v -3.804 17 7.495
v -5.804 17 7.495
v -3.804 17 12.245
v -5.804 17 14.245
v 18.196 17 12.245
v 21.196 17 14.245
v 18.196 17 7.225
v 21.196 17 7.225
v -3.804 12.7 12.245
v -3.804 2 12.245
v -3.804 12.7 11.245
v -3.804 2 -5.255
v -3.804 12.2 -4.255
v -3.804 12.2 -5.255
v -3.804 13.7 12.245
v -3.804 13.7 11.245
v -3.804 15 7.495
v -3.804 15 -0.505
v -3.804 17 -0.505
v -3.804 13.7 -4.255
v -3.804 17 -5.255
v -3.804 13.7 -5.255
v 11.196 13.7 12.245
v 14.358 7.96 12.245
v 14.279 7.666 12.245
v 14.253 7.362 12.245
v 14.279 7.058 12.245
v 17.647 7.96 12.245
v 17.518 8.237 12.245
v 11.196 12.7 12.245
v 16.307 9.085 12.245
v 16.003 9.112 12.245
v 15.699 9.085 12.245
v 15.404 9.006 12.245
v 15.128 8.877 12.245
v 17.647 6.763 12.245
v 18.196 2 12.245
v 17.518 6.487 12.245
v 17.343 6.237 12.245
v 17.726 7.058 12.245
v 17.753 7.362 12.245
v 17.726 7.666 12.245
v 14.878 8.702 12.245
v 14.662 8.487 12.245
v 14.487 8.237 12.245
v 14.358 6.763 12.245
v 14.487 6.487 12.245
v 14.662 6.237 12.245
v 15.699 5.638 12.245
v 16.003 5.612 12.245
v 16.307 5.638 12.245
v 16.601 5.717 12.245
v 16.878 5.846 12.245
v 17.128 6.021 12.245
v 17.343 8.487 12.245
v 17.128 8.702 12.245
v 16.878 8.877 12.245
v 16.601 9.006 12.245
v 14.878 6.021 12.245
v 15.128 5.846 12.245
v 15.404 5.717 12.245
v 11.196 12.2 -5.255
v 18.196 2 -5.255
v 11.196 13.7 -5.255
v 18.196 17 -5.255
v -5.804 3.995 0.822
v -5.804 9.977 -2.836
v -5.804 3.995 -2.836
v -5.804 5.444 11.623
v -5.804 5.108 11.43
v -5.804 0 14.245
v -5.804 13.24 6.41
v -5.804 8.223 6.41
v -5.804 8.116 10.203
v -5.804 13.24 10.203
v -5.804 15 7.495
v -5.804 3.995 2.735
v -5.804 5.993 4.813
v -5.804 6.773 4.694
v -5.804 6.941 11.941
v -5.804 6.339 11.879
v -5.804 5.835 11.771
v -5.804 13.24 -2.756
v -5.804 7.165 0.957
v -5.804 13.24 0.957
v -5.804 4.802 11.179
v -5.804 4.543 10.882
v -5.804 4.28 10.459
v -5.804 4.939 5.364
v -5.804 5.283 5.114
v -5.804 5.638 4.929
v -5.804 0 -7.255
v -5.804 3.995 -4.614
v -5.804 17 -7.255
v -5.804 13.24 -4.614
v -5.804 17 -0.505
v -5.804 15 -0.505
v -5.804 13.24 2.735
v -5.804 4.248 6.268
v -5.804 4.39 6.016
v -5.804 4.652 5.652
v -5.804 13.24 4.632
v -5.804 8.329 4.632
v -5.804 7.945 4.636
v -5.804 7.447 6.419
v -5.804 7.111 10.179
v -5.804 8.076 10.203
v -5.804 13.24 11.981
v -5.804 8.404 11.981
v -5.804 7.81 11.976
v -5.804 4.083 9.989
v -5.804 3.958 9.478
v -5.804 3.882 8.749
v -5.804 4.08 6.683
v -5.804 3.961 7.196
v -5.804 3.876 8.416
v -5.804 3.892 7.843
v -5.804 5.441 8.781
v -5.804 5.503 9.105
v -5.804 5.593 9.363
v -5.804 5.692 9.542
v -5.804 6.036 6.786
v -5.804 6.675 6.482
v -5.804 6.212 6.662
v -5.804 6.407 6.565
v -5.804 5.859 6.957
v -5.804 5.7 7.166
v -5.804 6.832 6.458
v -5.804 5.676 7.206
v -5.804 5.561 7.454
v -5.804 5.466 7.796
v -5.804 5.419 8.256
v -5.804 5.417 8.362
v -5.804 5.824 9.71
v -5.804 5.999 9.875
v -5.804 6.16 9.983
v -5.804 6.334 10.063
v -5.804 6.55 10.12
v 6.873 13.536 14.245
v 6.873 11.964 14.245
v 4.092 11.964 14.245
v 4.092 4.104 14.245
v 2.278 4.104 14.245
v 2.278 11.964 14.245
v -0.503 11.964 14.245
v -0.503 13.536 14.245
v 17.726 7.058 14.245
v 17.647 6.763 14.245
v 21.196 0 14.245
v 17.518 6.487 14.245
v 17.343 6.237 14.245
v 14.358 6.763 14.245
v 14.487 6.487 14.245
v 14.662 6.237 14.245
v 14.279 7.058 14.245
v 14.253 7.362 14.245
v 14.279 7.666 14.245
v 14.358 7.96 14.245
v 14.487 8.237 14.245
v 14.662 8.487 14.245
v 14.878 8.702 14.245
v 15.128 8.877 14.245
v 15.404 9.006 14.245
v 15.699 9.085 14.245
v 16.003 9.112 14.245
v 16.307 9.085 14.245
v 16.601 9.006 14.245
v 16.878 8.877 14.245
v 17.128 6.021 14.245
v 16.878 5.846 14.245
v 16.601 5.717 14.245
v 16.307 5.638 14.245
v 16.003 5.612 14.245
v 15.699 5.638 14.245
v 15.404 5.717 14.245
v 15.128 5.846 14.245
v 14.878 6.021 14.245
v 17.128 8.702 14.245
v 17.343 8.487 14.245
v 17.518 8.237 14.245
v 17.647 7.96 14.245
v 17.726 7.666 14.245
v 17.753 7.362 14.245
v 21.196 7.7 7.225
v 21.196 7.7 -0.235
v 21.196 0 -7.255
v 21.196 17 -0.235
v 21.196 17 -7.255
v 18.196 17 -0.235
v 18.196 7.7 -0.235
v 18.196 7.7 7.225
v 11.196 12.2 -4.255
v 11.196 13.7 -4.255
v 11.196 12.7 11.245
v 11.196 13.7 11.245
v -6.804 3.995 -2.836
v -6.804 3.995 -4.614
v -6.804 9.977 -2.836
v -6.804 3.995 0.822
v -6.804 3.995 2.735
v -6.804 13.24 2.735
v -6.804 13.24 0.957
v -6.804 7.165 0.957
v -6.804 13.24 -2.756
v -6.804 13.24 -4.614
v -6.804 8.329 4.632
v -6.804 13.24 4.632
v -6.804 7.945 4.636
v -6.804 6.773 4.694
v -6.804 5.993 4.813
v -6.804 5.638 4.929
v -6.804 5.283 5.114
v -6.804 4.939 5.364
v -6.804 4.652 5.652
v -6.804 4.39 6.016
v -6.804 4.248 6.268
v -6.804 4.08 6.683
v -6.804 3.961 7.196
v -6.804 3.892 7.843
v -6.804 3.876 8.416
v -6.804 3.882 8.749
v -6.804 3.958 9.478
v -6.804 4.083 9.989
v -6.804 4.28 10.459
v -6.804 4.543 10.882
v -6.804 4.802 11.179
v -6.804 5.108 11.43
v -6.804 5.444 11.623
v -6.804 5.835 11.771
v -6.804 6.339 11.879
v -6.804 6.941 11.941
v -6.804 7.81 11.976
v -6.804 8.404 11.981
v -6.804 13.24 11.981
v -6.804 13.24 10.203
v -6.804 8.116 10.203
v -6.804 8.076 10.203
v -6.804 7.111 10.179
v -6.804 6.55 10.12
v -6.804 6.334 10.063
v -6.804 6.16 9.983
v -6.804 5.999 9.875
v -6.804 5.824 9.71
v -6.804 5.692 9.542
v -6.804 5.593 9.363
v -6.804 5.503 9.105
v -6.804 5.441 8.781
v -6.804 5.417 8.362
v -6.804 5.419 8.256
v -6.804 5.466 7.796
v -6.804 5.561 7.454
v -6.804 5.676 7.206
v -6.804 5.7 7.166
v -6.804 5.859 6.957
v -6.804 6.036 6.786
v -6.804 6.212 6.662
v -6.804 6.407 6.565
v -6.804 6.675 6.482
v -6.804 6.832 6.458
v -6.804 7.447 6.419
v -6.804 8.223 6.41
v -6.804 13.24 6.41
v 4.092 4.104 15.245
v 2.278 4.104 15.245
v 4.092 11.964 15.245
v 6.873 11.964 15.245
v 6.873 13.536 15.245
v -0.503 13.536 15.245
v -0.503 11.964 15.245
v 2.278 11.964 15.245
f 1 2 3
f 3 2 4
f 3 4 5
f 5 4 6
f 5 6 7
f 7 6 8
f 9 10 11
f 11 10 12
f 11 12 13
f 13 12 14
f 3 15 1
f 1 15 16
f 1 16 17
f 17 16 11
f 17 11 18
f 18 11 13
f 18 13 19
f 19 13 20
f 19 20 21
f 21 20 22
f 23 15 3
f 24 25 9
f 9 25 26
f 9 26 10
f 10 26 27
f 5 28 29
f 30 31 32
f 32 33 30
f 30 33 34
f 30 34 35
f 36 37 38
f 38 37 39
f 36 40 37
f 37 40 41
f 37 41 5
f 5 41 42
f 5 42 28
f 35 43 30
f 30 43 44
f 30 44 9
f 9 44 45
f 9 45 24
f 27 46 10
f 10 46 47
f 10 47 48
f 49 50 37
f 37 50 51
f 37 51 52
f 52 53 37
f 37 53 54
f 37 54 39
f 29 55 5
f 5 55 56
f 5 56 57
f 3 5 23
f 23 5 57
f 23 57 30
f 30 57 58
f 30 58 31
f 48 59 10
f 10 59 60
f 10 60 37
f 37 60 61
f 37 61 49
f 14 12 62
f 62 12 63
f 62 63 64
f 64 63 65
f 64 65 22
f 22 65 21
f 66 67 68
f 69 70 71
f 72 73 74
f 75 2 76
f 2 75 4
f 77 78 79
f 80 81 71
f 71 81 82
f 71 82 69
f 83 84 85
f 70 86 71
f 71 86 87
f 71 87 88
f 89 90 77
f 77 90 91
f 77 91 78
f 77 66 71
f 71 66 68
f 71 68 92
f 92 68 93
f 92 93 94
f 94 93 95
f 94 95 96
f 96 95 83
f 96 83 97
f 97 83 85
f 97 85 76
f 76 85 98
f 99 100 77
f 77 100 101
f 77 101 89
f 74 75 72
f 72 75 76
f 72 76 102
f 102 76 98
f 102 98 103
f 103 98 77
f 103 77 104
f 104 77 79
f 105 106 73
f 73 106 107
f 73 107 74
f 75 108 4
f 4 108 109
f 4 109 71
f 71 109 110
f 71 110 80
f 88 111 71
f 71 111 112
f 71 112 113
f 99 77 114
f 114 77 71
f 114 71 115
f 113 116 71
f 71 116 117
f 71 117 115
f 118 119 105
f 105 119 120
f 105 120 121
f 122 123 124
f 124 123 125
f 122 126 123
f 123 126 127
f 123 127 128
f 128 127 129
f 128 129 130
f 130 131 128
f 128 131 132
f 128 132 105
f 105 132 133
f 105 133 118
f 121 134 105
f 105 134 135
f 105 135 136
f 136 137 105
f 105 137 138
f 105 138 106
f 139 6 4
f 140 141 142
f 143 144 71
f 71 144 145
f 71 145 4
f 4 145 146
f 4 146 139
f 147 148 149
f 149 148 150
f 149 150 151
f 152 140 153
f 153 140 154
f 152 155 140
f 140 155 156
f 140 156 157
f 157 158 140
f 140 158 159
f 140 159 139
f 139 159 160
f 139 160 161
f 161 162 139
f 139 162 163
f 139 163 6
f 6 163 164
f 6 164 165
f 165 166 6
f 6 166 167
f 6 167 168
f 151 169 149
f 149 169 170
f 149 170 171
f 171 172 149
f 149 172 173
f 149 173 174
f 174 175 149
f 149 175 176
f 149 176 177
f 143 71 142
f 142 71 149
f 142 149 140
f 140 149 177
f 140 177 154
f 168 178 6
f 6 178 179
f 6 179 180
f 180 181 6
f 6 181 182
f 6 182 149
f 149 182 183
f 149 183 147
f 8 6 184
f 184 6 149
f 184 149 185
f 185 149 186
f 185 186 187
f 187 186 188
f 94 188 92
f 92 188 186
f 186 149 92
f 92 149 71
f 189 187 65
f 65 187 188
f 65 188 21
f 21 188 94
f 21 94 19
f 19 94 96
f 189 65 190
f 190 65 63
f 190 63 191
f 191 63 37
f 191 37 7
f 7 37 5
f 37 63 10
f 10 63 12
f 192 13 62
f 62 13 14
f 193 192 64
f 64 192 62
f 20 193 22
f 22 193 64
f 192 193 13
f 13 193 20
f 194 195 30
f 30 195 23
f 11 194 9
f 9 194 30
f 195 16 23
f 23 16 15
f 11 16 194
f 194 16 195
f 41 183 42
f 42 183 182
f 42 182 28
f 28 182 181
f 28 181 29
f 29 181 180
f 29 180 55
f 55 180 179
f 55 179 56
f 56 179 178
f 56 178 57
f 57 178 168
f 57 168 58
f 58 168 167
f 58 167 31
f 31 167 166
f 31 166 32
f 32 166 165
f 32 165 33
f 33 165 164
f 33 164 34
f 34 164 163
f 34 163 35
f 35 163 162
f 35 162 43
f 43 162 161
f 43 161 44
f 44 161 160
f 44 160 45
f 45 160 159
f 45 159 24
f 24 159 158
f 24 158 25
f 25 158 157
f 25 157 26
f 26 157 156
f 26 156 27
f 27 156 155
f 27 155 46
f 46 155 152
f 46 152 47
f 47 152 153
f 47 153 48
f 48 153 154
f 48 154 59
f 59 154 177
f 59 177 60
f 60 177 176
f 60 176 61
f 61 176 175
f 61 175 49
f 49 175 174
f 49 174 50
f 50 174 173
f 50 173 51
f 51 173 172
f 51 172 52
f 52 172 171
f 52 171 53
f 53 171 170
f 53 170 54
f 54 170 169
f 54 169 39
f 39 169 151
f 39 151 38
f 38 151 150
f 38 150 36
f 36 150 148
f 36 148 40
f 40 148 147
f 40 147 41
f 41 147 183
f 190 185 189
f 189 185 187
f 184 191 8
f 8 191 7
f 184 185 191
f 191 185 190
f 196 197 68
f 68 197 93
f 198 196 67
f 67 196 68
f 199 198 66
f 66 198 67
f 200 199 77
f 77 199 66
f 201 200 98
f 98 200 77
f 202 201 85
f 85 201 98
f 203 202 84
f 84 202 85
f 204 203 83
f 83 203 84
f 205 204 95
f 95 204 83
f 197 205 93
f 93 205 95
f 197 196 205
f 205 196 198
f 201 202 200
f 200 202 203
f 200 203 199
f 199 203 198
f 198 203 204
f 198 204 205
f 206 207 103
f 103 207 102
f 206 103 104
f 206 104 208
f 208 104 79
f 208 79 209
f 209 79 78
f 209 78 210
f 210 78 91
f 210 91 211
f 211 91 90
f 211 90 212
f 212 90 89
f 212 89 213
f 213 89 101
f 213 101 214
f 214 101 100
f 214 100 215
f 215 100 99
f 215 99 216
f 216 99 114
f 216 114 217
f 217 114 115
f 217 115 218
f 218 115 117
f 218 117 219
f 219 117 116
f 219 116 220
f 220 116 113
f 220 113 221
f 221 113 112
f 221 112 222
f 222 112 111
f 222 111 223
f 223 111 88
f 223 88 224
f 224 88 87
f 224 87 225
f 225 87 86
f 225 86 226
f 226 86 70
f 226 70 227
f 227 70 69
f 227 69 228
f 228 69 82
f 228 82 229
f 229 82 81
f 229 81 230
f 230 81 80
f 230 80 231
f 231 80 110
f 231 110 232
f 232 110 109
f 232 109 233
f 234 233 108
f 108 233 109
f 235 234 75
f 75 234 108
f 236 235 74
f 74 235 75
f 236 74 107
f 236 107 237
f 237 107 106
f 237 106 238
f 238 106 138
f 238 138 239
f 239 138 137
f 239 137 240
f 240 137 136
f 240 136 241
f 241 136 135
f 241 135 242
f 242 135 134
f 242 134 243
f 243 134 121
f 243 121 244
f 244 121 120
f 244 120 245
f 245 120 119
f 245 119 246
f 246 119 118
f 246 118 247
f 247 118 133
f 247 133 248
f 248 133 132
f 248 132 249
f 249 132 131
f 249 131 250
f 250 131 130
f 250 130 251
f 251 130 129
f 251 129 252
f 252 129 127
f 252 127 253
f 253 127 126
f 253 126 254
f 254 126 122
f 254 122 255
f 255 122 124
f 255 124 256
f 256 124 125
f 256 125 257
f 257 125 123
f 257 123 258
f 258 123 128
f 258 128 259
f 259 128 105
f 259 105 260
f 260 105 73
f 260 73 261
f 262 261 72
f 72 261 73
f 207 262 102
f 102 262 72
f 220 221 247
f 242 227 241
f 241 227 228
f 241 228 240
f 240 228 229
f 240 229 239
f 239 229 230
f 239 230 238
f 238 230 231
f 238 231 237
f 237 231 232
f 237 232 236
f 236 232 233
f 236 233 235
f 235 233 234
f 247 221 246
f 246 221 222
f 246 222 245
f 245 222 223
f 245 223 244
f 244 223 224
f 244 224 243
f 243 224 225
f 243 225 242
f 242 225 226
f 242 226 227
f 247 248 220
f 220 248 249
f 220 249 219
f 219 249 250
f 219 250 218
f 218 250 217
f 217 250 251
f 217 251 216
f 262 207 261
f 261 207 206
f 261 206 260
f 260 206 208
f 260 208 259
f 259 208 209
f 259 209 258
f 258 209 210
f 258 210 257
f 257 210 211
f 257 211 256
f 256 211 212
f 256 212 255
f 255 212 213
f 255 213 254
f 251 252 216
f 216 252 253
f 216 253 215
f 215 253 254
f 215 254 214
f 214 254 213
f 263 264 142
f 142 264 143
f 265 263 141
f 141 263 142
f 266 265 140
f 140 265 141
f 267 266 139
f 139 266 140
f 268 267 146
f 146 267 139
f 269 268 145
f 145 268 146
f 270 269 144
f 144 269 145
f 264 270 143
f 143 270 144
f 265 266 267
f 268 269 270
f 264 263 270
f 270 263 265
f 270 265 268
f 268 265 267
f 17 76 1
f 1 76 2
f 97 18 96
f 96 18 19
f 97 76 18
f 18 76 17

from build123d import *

# Parameters (mm, degrees)
SKETCH1_W           = 27
SKETCH1_H           = 21.5
BOSS_EXTRUDE1_DEPTH = 2
SKETCH2_W           = 27
SKETCH2_H           = 21.5
SKETCH2_W_2         = 22
SKETCH2_H_2         = 17.5
BOSS_EXTRUDE2_DEPTH = 15
SKETCH3_W           = 15
SKETCH3_H           = 1.5
BOSS_EXTRUDE3_DEPTH = 1
SKETCH4_W           = 15
SKETCH4_H           = 1
BOSS_EXTRUDE4_DEPTH = 1
SKETCH7_R           = 1.75
CUT_EXTRUDE2_DEPTH  = 2
SKETCH8_W           = 3
SKETCH8_H           = 7.46
CUT_EXTRUDE3_DEPTH  = 9.3
BOSS_EXTRUDE5_DEPTH = 1
BOSS_EXTRUDE6_DEPTH = 1
SKETCH11_W          = 2
SKETCH11_H          = 8
CUT_EXTRUDE4_DEPTH  = 2


with BuildPart() as part:
    # Sketch1 → Boss-Extrude1 (new body)
    with BuildSketch(Plane(origin=(0, 0, 0), x_dir=(1, 0, 0), z_dir=(0, 1, 0))):
        with Locations((7.695979899, -3.494974874)):
            Rectangle(SKETCH1_W, SKETCH1_H)
    extrude(amount=BOSS_EXTRUDE1_DEPTH)

    # Sketch2 → Boss-Extrude2 (add)
    with BuildSketch(Plane(origin=(0, 2, 0), x_dir=(1, 0, 0), z_dir=(0, 1, 0))):
        with Locations((7.695979899, -3.494974874)):
            Rectangle(SKETCH2_W, SKETCH2_H)
        with Locations((7.195979899, -3.494974874)):
            Rectangle(SKETCH2_W_2, SKETCH2_H_2, mode=Mode.SUBTRACT)
    extrude(amount=BOSS_EXTRUDE2_DEPTH)

    # Sketch3 → Boss-Extrude3 (add)
    with BuildSketch(Plane.XY.offset(-5.255025126)):
        with Locations((3.695979899, 12.95)):
            Rectangle(SKETCH3_W, SKETCH3_H)
    extrude(amount=BOSS_EXTRUDE3_DEPTH)

    # Sketch4 → Boss-Extrude4 (add)
    with BuildSketch(Plane(origin=(0, 0, 12.244974874), x_dir=(-1, 0, 0), z_dir=(0, 0, -1))):
        with Locations((-3.695979899, 13.2)):
            Rectangle(SKETCH4_W, SKETCH4_H)
    extrude(amount=BOSS_EXTRUDE4_DEPTH)

    # Sketch7 → Cut-Extrude2 (cut)
    with BuildSketch(Plane.XY.offset(14.244974874)):
        with Locations((16.00290807, 7.361856015)):
            Circle(SKETCH7_R)
    extrude(amount=-CUT_EXTRUDE2_DEPTH, mode=Mode.SUBTRACT)

    # Sketch8 → Cut-Extrude3 (cut)
    with BuildSketch(Plane(origin=(0, 17, 0), x_dir=(1, 0, 0), z_dir=(0, 1, 0))):
        with Locations((19.695979899, -3.494974874)):
            Rectangle(SKETCH8_W, SKETCH8_H)
    extrude(amount=-CUT_EXTRUDE3_DEPTH, mode=Mode.SUBTRACT)

    # Sketch9 → Boss-Extrude5 (add)
    with BuildSketch(Plane.ZY.offset(5.804020101)):
        Polygon((-4.61402787, 3.994511949), (-4.61402787, 13.240459214), (-2.756318514, 13.240459214), (0.957248046, 7.16539771), (0.957248046, 13.240459214), (2.735314828, 13.240459214), (2.735314828, 3.994511949), (0.822040884, 3.994511949), (-2.835961089, 9.976965808), (-2.835961089, 3.994511949), align=None)
        with BuildLine():
            Line((4.631919395, 13.240459214), (6.409986177, 13.240459214))
            Line((6.409986177, 13.240459214), (6.409986177, 8.222977014))
            add(Edge.make_bspline(
                [(6.409986177, 8.222977014), (6.410664977, 8.127899938), (6.411960871, 7.946388772), (6.412852908, 7.687065219), (6.417789545, 7.454232779), (6.428495129, 7.247516275), (6.435842667, 7.067021131), (6.449486246, 6.912714219), (6.46309676, 6.784655632), (6.476329448, 6.708485325), (6.48222014, 6.674577192)],
                knots=[0, 0, 0, 0, 0.000285238, 0.000544546, 0.000777983, 0.00098378, 0.001165528, 0.001319802, 0.001448457, 0.00155168, 0.00155168, 0.00155168, 0.00155168], degree=3))
            add(Edge.make_bspline(
                [(6.48222014, 6.674577192), (6.506506, 6.583165819), (6.554327924, 6.403165284), (6.686142733, 6.157109332), (6.860268235, 5.940226506), (7.037882666, 5.785554138), (7.198548601, 5.676088514), (7.335021148, 5.609466156), (7.47981763, 5.548735594), (7.63599912, 5.502137547), (7.801889384, 5.46136258), (7.979492203, 5.437786208), (8.167308711, 5.419691929), (8.296044968, 5.417890479), (8.362155331, 5.416965374)],
                knots=[0, 0, 0, 0, 0.000282968, 0.000557199, 0.000829969, 0.001113451, 0.001260368, 0.00141195, 0.001568103, 0.001730967, 0.001900335, 0.002080022, 0.002267831, 0.002466089, 0.002466089, 0.002466089, 0.002466089], degree=3))
            add(Edge.make_bspline(
                [(8.362155331, 5.416965374), (8.42885346, 5.41817507), (8.558713354, 5.420530322), (8.74690251, 5.434556672), (8.922479775, 5.46101956), (9.085337742, 5.495717516), (9.23633657, 5.539569917), (9.374271612, 5.595092211), (9.498925505, 5.661908259), (9.645391949, 5.762616554), (9.802989652, 5.904683185), (9.954657319, 6.097840917), (10.063204683, 6.311066042), (10.114117997, 6.505756529), (10.140285731, 6.675384373), (10.156228521, 6.823814626), (10.170809009, 6.99178617), (10.184049207, 7.178838934), (10.193103805, 7.385113322), (10.198001278, 7.611131016), (10.201855616, 7.856855971), (10.202738101, 8.027264527), (10.203195312, 8.115552146)],
                knots=[0, 0, 0, 0, 0.00020011, 0.000389609, 0.000565632, 0.000732377, 0.000888849, 0.001036743, 0.001177616, 0.001312213, 0.001569242, 0.001810797, 0.00204521, 0.002281568, 0.00241098, 0.002560087, 0.002729283, 0.0029168, 0.003122597, 0.003348628, 0.003594992, 0.003859856, 0.003859856, 0.003859856, 0.003859856], degree=3))
            Line((10.203195312, 8.115552146), (10.203195312, 13.240459214))
            Line((10.203195312, 13.240459214), (11.981262093, 13.240459214))
            Line((11.981262093, 13.240459214), (11.981262093, 8.404487998))
            add(Edge.make_bspline(
                [(11.981262093, 8.404487998), (11.981034195, 8.271131655), (11.980596294, 8.014891106), (11.973759084, 7.646224887), (11.959227844, 7.307989087), (11.947059184, 6.999603918), (11.923586339, 6.721856103), (11.89901035, 6.47457295), (11.867350881, 6.257797674), (11.822204183, 6.011401071), (11.746332221, 5.734959937), (11.624052705, 5.42959525), (11.467775809, 5.151778752), (11.278124263, 4.900444487), (11.056190615, 4.674593522), (10.798651876, 4.475113752), (10.508156306, 4.299580065), (10.241950666, 4.173184842), (10.009853453, 4.08807444), (9.820814155, 4.030475534), (9.61849876, 3.982507696), (9.403144549, 3.94444095), (9.174658985, 3.912345052), (8.932959111, 3.890910251), (8.678410596, 3.877533423), (8.50478883, 3.876502272), (8.415867765, 3.875974163)],
                knots=[0, 0, 0, 0, 0.000400069, 0.000768722, 0.001106063, 0.001415727, 0.001694438, 0.001942135, 0.002161113, 0.002351461, 0.002693408, 0.003019119, 0.003335923, 0.003646716, 0.003961047, 0.004283013, 0.004621309, 0.004977577, 0.005165094, 0.005362546, 0.005570094, 0.005788436, 0.006018417, 0.006262065, 0.00651614, 0.006782876, 0.006782876, 0.006782876, 0.006782876], degree=3))
            add(Edge.make_bspline(
                [(8.415867765, 3.875974163), (8.309052797, 3.877339536), (8.10213628, 3.879984467), (7.801779753, 3.891783276), (7.521923904, 3.916136469), (7.261689478, 3.94905209), (7.02118392, 3.991366197), (6.799798809, 4.041952447), (6.59930158, 4.105886329), (6.360493291, 4.19719937), (6.094301616, 4.336877712), (5.804540716, 4.523207483), (5.550180475, 4.733513713), (5.333455831, 4.965741446), (5.152282464, 5.211729672), (5.005020527, 5.466155478), (4.887009657, 5.724778163), (4.837698017, 5.904525991), (4.813430379, 5.992984925)],
                knots=[0, 0, 0, 0, 0.000320471, 0.000620799, 0.000901509, 0.001162945, 0.001407464, 0.001633889, 0.0018436, 0.002038279, 0.002400265, 0.002742918, 0.003070414, 0.003387527, 0.003693514, 0.003984821, 0.004268412, 0.004543212, 0.004543212, 0.004543212, 0.004543212], degree=3))
            add(Edge.make_bspline(
                [(4.813430379, 5.992984925), (4.79857773, 6.062627668), (4.767293301, 6.209317553), (4.731762874, 6.442525714), (4.699348655, 6.699326958), (4.677209321, 6.980025037), (4.65622326, 7.283729346), (4.64115601, 7.611012524), (4.634960344, 7.961800253), (4.632953465, 8.203837094), (4.631919395, 8.328549729)],
                knots=[0, 0, 0, 0, 0.000213585, 0.000449878, 0.000707407, 0.000989962, 0.001294397, 0.001620713, 0.0019727, 0.002346853, 0.002346853, 0.002346853, 0.002346853], degree=3))
            Line((4.631919395, 8.328549729), (4.631919395, 13.240459214))
        make_face()
    extrude(amount=BOSS_EXTRUDE5_DEPTH)

    # Sketch10 → Boss-Extrude6 (add)
    with BuildSketch(Plane.XY.offset(14.244974874)):
        Polygon((2.278412827, 4.103597224), (2.278412827, 11.963582575), (-0.502812759, 11.963582575), (-0.502812759, 13.535579645), (6.873481186, 13.535579645), (6.873481186, 11.963582575), (4.0922556, 11.963582575), (4.0922556, 4.103597224), align=None)
    extrude(amount=BOSS_EXTRUDE6_DEPTH)

    # Sketch11 → Cut-Extrude4 (cut)
    with BuildSketch(Plane(origin=(0, 17, 0), x_dir=(1, 0, 0), z_dir=(0, 1, 0))):
        with Locations((-4.804020101, -3.494974874)):
            Rectangle(SKETCH11_W, SKETCH11_H)
    extrude(amount=-CUT_EXTRUDE4_DEPTH, mode=Mode.SUBTRACT)


solid = part.part
